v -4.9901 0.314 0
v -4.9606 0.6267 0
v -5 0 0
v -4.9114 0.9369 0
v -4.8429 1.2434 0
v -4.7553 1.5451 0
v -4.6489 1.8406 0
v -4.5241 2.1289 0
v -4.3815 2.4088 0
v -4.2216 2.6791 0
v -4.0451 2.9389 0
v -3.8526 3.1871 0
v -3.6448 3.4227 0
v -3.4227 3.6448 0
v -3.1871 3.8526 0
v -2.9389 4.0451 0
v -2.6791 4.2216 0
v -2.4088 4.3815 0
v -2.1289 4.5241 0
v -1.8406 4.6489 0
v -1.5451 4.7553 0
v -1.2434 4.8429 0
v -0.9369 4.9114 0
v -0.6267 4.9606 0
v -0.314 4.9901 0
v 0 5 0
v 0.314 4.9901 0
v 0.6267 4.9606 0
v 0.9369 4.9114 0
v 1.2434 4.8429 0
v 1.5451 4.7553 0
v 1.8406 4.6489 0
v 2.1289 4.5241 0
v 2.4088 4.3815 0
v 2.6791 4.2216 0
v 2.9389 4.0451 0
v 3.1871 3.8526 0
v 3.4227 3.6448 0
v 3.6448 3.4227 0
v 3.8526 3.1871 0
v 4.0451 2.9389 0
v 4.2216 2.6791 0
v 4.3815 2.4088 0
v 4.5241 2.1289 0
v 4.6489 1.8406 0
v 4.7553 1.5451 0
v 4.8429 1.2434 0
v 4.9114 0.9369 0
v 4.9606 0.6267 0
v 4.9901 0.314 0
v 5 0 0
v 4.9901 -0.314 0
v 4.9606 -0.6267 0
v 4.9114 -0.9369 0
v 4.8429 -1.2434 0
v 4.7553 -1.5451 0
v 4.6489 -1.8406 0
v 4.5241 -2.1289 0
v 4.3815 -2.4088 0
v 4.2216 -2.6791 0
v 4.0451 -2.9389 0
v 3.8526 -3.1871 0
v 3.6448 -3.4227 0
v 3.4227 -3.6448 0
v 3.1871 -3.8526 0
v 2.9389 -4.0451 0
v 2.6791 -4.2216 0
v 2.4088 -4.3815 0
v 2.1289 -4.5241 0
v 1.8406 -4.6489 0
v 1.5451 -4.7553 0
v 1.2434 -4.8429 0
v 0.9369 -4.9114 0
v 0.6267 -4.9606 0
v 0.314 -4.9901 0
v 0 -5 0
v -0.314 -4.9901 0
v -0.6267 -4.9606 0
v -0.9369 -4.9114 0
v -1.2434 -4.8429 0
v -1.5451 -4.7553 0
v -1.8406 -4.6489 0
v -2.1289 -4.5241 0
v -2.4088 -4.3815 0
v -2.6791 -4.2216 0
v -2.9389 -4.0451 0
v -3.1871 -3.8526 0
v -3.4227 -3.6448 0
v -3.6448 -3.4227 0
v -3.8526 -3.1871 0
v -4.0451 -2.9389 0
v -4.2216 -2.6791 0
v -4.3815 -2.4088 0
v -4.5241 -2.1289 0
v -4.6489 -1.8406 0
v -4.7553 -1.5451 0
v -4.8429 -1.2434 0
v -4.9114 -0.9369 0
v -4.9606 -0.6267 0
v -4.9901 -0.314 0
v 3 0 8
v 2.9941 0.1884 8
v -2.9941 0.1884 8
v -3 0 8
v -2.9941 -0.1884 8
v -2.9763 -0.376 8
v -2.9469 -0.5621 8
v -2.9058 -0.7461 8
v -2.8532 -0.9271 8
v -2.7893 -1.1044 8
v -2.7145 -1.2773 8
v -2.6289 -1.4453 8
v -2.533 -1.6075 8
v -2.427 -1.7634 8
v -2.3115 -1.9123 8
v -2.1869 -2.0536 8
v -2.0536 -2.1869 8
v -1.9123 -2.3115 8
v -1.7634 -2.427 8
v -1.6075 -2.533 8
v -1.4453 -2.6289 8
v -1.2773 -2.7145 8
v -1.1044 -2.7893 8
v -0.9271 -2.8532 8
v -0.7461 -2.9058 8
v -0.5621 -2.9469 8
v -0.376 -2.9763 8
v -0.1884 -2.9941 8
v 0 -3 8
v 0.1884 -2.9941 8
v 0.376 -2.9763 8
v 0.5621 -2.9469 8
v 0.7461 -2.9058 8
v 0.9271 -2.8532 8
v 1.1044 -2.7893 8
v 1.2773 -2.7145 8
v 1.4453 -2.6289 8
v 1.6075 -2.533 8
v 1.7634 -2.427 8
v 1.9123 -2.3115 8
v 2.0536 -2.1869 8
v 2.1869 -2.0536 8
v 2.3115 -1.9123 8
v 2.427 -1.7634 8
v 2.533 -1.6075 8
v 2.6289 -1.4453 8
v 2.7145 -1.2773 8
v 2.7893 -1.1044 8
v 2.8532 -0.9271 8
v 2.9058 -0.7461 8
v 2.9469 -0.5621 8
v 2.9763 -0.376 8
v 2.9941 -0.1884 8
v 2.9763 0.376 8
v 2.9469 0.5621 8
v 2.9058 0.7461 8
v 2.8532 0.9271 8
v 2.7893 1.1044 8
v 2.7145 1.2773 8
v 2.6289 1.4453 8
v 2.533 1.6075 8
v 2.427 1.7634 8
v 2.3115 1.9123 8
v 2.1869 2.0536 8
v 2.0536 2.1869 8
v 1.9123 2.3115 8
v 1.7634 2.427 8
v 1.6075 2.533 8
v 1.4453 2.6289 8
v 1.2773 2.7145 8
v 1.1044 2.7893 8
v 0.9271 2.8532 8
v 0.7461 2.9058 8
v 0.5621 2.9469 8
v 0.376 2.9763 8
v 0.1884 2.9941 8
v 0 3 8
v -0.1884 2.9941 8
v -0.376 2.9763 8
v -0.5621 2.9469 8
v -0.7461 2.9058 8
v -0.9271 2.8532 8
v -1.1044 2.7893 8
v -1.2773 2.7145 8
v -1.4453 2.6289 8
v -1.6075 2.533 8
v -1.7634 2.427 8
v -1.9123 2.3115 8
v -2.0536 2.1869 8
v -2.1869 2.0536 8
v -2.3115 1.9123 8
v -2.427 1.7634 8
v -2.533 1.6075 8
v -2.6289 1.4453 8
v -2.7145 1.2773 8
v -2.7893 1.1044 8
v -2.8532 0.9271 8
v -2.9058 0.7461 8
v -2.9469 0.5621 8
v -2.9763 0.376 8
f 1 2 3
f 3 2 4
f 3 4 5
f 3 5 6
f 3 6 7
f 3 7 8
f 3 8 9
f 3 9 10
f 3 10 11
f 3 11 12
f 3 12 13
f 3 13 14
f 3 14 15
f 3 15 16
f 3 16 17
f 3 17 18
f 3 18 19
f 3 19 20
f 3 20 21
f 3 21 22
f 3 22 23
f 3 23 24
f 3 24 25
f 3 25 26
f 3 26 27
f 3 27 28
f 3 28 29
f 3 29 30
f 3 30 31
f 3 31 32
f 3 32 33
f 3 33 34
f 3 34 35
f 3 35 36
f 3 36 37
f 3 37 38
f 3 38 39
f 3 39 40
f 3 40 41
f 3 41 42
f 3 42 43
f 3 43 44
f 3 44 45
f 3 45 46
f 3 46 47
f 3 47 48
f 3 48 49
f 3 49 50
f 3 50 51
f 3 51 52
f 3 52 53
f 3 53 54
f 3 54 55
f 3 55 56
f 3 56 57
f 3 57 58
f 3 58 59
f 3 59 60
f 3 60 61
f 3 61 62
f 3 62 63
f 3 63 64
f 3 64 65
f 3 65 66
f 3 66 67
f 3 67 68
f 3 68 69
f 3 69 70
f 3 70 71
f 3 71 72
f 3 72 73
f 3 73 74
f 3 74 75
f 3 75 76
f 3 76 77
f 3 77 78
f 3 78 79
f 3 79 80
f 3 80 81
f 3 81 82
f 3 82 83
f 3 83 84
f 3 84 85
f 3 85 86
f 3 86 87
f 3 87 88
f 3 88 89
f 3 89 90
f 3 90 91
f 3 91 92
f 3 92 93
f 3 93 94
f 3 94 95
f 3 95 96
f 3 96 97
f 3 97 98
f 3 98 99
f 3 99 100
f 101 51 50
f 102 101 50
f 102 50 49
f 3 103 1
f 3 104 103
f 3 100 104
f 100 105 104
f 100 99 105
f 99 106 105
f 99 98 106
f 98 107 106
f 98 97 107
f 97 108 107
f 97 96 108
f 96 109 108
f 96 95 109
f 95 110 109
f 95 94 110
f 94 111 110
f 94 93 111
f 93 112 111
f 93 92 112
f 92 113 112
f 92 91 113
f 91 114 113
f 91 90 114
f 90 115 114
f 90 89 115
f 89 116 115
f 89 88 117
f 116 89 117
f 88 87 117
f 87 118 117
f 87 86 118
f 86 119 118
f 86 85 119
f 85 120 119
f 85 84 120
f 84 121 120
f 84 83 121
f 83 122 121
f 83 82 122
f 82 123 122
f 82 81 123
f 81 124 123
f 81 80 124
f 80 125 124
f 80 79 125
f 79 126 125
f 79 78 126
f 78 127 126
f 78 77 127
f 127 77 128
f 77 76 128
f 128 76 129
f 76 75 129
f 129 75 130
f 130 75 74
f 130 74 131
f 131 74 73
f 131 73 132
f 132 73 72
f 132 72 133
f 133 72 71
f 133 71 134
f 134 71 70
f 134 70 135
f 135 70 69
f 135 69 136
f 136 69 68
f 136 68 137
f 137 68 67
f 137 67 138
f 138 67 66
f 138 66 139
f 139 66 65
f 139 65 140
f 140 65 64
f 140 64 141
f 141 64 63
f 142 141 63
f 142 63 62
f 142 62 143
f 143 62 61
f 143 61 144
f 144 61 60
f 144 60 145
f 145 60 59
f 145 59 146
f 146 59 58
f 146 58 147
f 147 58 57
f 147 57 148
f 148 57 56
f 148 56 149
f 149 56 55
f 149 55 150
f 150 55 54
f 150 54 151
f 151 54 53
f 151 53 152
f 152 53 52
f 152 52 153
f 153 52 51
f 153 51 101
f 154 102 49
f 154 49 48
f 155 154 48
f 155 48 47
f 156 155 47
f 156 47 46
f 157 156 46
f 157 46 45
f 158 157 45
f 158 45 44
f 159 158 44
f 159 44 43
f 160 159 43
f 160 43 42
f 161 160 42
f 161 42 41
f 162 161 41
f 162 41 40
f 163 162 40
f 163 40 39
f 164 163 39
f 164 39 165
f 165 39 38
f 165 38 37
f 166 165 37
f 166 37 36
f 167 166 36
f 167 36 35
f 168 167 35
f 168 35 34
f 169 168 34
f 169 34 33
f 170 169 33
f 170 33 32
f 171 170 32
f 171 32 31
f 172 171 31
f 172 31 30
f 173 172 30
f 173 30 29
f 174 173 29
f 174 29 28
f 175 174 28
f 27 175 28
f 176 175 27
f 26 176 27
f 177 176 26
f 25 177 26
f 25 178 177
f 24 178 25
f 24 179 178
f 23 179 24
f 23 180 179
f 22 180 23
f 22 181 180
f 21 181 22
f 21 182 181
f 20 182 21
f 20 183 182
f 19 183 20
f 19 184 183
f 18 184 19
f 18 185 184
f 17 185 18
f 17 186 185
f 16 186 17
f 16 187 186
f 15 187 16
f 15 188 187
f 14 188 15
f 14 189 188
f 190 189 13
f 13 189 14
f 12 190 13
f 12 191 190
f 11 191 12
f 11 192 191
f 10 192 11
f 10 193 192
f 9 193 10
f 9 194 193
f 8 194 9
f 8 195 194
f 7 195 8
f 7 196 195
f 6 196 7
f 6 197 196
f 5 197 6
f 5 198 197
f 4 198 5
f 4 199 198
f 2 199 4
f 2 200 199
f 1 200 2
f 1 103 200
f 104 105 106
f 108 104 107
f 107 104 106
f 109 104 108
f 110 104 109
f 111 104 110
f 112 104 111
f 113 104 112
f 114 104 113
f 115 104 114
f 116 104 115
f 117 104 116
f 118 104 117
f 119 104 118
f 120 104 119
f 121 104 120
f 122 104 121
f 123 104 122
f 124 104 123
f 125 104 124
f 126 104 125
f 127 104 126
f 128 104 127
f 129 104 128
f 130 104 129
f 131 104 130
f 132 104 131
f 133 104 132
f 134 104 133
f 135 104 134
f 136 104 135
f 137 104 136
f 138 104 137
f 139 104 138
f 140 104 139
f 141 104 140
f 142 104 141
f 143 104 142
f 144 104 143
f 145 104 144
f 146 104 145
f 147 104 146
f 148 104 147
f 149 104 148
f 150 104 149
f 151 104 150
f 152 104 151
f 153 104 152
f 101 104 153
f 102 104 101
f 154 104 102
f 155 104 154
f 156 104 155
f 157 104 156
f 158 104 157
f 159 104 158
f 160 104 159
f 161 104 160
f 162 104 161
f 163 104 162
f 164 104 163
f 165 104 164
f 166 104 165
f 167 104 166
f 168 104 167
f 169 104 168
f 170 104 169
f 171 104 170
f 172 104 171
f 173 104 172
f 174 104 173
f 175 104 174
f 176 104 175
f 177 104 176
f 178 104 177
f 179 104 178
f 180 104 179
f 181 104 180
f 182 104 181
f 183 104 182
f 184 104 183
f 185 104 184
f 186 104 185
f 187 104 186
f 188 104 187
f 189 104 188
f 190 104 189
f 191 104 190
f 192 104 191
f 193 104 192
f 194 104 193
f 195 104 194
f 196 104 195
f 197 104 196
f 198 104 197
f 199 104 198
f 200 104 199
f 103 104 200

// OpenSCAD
/*
 * OpenSCAD Workshop Examples
 * Copyright (c) 2013 Anar Software LLC. < http://anars.com >
 *
 * This program is free software: you can redistribute it and/or modify it under
 * the terms of the GNU General Public License as published by the Free Software
 * Foundation, either version 3 of the License, or (at your option) any later
 * version.
 *
 * This program is distributed in the hope that it will be useful, but WITHOUT
 * ANY WARRANTY; without even the implied warranty of MERCHANTABILITY or FITNESS
 * FOR A PARTICULAR PURPOSE. See the GNU General Public License for more details.
 *
 * You should have received a copy of the GNU General Public License along with
 * this program. If not, see < http://www.gnu.org/licenses/ >
 *
 */
/*

Creates a cone with bottom end radius is 5 unit radius, top end radius 3 unit and 8 unit height.

Parameters :

	cylinder(r1 = x, r2 = x, h = 3);

*/

$fn = 100;

cylinder(r1 = 5, r2 = 3, h = 8);
